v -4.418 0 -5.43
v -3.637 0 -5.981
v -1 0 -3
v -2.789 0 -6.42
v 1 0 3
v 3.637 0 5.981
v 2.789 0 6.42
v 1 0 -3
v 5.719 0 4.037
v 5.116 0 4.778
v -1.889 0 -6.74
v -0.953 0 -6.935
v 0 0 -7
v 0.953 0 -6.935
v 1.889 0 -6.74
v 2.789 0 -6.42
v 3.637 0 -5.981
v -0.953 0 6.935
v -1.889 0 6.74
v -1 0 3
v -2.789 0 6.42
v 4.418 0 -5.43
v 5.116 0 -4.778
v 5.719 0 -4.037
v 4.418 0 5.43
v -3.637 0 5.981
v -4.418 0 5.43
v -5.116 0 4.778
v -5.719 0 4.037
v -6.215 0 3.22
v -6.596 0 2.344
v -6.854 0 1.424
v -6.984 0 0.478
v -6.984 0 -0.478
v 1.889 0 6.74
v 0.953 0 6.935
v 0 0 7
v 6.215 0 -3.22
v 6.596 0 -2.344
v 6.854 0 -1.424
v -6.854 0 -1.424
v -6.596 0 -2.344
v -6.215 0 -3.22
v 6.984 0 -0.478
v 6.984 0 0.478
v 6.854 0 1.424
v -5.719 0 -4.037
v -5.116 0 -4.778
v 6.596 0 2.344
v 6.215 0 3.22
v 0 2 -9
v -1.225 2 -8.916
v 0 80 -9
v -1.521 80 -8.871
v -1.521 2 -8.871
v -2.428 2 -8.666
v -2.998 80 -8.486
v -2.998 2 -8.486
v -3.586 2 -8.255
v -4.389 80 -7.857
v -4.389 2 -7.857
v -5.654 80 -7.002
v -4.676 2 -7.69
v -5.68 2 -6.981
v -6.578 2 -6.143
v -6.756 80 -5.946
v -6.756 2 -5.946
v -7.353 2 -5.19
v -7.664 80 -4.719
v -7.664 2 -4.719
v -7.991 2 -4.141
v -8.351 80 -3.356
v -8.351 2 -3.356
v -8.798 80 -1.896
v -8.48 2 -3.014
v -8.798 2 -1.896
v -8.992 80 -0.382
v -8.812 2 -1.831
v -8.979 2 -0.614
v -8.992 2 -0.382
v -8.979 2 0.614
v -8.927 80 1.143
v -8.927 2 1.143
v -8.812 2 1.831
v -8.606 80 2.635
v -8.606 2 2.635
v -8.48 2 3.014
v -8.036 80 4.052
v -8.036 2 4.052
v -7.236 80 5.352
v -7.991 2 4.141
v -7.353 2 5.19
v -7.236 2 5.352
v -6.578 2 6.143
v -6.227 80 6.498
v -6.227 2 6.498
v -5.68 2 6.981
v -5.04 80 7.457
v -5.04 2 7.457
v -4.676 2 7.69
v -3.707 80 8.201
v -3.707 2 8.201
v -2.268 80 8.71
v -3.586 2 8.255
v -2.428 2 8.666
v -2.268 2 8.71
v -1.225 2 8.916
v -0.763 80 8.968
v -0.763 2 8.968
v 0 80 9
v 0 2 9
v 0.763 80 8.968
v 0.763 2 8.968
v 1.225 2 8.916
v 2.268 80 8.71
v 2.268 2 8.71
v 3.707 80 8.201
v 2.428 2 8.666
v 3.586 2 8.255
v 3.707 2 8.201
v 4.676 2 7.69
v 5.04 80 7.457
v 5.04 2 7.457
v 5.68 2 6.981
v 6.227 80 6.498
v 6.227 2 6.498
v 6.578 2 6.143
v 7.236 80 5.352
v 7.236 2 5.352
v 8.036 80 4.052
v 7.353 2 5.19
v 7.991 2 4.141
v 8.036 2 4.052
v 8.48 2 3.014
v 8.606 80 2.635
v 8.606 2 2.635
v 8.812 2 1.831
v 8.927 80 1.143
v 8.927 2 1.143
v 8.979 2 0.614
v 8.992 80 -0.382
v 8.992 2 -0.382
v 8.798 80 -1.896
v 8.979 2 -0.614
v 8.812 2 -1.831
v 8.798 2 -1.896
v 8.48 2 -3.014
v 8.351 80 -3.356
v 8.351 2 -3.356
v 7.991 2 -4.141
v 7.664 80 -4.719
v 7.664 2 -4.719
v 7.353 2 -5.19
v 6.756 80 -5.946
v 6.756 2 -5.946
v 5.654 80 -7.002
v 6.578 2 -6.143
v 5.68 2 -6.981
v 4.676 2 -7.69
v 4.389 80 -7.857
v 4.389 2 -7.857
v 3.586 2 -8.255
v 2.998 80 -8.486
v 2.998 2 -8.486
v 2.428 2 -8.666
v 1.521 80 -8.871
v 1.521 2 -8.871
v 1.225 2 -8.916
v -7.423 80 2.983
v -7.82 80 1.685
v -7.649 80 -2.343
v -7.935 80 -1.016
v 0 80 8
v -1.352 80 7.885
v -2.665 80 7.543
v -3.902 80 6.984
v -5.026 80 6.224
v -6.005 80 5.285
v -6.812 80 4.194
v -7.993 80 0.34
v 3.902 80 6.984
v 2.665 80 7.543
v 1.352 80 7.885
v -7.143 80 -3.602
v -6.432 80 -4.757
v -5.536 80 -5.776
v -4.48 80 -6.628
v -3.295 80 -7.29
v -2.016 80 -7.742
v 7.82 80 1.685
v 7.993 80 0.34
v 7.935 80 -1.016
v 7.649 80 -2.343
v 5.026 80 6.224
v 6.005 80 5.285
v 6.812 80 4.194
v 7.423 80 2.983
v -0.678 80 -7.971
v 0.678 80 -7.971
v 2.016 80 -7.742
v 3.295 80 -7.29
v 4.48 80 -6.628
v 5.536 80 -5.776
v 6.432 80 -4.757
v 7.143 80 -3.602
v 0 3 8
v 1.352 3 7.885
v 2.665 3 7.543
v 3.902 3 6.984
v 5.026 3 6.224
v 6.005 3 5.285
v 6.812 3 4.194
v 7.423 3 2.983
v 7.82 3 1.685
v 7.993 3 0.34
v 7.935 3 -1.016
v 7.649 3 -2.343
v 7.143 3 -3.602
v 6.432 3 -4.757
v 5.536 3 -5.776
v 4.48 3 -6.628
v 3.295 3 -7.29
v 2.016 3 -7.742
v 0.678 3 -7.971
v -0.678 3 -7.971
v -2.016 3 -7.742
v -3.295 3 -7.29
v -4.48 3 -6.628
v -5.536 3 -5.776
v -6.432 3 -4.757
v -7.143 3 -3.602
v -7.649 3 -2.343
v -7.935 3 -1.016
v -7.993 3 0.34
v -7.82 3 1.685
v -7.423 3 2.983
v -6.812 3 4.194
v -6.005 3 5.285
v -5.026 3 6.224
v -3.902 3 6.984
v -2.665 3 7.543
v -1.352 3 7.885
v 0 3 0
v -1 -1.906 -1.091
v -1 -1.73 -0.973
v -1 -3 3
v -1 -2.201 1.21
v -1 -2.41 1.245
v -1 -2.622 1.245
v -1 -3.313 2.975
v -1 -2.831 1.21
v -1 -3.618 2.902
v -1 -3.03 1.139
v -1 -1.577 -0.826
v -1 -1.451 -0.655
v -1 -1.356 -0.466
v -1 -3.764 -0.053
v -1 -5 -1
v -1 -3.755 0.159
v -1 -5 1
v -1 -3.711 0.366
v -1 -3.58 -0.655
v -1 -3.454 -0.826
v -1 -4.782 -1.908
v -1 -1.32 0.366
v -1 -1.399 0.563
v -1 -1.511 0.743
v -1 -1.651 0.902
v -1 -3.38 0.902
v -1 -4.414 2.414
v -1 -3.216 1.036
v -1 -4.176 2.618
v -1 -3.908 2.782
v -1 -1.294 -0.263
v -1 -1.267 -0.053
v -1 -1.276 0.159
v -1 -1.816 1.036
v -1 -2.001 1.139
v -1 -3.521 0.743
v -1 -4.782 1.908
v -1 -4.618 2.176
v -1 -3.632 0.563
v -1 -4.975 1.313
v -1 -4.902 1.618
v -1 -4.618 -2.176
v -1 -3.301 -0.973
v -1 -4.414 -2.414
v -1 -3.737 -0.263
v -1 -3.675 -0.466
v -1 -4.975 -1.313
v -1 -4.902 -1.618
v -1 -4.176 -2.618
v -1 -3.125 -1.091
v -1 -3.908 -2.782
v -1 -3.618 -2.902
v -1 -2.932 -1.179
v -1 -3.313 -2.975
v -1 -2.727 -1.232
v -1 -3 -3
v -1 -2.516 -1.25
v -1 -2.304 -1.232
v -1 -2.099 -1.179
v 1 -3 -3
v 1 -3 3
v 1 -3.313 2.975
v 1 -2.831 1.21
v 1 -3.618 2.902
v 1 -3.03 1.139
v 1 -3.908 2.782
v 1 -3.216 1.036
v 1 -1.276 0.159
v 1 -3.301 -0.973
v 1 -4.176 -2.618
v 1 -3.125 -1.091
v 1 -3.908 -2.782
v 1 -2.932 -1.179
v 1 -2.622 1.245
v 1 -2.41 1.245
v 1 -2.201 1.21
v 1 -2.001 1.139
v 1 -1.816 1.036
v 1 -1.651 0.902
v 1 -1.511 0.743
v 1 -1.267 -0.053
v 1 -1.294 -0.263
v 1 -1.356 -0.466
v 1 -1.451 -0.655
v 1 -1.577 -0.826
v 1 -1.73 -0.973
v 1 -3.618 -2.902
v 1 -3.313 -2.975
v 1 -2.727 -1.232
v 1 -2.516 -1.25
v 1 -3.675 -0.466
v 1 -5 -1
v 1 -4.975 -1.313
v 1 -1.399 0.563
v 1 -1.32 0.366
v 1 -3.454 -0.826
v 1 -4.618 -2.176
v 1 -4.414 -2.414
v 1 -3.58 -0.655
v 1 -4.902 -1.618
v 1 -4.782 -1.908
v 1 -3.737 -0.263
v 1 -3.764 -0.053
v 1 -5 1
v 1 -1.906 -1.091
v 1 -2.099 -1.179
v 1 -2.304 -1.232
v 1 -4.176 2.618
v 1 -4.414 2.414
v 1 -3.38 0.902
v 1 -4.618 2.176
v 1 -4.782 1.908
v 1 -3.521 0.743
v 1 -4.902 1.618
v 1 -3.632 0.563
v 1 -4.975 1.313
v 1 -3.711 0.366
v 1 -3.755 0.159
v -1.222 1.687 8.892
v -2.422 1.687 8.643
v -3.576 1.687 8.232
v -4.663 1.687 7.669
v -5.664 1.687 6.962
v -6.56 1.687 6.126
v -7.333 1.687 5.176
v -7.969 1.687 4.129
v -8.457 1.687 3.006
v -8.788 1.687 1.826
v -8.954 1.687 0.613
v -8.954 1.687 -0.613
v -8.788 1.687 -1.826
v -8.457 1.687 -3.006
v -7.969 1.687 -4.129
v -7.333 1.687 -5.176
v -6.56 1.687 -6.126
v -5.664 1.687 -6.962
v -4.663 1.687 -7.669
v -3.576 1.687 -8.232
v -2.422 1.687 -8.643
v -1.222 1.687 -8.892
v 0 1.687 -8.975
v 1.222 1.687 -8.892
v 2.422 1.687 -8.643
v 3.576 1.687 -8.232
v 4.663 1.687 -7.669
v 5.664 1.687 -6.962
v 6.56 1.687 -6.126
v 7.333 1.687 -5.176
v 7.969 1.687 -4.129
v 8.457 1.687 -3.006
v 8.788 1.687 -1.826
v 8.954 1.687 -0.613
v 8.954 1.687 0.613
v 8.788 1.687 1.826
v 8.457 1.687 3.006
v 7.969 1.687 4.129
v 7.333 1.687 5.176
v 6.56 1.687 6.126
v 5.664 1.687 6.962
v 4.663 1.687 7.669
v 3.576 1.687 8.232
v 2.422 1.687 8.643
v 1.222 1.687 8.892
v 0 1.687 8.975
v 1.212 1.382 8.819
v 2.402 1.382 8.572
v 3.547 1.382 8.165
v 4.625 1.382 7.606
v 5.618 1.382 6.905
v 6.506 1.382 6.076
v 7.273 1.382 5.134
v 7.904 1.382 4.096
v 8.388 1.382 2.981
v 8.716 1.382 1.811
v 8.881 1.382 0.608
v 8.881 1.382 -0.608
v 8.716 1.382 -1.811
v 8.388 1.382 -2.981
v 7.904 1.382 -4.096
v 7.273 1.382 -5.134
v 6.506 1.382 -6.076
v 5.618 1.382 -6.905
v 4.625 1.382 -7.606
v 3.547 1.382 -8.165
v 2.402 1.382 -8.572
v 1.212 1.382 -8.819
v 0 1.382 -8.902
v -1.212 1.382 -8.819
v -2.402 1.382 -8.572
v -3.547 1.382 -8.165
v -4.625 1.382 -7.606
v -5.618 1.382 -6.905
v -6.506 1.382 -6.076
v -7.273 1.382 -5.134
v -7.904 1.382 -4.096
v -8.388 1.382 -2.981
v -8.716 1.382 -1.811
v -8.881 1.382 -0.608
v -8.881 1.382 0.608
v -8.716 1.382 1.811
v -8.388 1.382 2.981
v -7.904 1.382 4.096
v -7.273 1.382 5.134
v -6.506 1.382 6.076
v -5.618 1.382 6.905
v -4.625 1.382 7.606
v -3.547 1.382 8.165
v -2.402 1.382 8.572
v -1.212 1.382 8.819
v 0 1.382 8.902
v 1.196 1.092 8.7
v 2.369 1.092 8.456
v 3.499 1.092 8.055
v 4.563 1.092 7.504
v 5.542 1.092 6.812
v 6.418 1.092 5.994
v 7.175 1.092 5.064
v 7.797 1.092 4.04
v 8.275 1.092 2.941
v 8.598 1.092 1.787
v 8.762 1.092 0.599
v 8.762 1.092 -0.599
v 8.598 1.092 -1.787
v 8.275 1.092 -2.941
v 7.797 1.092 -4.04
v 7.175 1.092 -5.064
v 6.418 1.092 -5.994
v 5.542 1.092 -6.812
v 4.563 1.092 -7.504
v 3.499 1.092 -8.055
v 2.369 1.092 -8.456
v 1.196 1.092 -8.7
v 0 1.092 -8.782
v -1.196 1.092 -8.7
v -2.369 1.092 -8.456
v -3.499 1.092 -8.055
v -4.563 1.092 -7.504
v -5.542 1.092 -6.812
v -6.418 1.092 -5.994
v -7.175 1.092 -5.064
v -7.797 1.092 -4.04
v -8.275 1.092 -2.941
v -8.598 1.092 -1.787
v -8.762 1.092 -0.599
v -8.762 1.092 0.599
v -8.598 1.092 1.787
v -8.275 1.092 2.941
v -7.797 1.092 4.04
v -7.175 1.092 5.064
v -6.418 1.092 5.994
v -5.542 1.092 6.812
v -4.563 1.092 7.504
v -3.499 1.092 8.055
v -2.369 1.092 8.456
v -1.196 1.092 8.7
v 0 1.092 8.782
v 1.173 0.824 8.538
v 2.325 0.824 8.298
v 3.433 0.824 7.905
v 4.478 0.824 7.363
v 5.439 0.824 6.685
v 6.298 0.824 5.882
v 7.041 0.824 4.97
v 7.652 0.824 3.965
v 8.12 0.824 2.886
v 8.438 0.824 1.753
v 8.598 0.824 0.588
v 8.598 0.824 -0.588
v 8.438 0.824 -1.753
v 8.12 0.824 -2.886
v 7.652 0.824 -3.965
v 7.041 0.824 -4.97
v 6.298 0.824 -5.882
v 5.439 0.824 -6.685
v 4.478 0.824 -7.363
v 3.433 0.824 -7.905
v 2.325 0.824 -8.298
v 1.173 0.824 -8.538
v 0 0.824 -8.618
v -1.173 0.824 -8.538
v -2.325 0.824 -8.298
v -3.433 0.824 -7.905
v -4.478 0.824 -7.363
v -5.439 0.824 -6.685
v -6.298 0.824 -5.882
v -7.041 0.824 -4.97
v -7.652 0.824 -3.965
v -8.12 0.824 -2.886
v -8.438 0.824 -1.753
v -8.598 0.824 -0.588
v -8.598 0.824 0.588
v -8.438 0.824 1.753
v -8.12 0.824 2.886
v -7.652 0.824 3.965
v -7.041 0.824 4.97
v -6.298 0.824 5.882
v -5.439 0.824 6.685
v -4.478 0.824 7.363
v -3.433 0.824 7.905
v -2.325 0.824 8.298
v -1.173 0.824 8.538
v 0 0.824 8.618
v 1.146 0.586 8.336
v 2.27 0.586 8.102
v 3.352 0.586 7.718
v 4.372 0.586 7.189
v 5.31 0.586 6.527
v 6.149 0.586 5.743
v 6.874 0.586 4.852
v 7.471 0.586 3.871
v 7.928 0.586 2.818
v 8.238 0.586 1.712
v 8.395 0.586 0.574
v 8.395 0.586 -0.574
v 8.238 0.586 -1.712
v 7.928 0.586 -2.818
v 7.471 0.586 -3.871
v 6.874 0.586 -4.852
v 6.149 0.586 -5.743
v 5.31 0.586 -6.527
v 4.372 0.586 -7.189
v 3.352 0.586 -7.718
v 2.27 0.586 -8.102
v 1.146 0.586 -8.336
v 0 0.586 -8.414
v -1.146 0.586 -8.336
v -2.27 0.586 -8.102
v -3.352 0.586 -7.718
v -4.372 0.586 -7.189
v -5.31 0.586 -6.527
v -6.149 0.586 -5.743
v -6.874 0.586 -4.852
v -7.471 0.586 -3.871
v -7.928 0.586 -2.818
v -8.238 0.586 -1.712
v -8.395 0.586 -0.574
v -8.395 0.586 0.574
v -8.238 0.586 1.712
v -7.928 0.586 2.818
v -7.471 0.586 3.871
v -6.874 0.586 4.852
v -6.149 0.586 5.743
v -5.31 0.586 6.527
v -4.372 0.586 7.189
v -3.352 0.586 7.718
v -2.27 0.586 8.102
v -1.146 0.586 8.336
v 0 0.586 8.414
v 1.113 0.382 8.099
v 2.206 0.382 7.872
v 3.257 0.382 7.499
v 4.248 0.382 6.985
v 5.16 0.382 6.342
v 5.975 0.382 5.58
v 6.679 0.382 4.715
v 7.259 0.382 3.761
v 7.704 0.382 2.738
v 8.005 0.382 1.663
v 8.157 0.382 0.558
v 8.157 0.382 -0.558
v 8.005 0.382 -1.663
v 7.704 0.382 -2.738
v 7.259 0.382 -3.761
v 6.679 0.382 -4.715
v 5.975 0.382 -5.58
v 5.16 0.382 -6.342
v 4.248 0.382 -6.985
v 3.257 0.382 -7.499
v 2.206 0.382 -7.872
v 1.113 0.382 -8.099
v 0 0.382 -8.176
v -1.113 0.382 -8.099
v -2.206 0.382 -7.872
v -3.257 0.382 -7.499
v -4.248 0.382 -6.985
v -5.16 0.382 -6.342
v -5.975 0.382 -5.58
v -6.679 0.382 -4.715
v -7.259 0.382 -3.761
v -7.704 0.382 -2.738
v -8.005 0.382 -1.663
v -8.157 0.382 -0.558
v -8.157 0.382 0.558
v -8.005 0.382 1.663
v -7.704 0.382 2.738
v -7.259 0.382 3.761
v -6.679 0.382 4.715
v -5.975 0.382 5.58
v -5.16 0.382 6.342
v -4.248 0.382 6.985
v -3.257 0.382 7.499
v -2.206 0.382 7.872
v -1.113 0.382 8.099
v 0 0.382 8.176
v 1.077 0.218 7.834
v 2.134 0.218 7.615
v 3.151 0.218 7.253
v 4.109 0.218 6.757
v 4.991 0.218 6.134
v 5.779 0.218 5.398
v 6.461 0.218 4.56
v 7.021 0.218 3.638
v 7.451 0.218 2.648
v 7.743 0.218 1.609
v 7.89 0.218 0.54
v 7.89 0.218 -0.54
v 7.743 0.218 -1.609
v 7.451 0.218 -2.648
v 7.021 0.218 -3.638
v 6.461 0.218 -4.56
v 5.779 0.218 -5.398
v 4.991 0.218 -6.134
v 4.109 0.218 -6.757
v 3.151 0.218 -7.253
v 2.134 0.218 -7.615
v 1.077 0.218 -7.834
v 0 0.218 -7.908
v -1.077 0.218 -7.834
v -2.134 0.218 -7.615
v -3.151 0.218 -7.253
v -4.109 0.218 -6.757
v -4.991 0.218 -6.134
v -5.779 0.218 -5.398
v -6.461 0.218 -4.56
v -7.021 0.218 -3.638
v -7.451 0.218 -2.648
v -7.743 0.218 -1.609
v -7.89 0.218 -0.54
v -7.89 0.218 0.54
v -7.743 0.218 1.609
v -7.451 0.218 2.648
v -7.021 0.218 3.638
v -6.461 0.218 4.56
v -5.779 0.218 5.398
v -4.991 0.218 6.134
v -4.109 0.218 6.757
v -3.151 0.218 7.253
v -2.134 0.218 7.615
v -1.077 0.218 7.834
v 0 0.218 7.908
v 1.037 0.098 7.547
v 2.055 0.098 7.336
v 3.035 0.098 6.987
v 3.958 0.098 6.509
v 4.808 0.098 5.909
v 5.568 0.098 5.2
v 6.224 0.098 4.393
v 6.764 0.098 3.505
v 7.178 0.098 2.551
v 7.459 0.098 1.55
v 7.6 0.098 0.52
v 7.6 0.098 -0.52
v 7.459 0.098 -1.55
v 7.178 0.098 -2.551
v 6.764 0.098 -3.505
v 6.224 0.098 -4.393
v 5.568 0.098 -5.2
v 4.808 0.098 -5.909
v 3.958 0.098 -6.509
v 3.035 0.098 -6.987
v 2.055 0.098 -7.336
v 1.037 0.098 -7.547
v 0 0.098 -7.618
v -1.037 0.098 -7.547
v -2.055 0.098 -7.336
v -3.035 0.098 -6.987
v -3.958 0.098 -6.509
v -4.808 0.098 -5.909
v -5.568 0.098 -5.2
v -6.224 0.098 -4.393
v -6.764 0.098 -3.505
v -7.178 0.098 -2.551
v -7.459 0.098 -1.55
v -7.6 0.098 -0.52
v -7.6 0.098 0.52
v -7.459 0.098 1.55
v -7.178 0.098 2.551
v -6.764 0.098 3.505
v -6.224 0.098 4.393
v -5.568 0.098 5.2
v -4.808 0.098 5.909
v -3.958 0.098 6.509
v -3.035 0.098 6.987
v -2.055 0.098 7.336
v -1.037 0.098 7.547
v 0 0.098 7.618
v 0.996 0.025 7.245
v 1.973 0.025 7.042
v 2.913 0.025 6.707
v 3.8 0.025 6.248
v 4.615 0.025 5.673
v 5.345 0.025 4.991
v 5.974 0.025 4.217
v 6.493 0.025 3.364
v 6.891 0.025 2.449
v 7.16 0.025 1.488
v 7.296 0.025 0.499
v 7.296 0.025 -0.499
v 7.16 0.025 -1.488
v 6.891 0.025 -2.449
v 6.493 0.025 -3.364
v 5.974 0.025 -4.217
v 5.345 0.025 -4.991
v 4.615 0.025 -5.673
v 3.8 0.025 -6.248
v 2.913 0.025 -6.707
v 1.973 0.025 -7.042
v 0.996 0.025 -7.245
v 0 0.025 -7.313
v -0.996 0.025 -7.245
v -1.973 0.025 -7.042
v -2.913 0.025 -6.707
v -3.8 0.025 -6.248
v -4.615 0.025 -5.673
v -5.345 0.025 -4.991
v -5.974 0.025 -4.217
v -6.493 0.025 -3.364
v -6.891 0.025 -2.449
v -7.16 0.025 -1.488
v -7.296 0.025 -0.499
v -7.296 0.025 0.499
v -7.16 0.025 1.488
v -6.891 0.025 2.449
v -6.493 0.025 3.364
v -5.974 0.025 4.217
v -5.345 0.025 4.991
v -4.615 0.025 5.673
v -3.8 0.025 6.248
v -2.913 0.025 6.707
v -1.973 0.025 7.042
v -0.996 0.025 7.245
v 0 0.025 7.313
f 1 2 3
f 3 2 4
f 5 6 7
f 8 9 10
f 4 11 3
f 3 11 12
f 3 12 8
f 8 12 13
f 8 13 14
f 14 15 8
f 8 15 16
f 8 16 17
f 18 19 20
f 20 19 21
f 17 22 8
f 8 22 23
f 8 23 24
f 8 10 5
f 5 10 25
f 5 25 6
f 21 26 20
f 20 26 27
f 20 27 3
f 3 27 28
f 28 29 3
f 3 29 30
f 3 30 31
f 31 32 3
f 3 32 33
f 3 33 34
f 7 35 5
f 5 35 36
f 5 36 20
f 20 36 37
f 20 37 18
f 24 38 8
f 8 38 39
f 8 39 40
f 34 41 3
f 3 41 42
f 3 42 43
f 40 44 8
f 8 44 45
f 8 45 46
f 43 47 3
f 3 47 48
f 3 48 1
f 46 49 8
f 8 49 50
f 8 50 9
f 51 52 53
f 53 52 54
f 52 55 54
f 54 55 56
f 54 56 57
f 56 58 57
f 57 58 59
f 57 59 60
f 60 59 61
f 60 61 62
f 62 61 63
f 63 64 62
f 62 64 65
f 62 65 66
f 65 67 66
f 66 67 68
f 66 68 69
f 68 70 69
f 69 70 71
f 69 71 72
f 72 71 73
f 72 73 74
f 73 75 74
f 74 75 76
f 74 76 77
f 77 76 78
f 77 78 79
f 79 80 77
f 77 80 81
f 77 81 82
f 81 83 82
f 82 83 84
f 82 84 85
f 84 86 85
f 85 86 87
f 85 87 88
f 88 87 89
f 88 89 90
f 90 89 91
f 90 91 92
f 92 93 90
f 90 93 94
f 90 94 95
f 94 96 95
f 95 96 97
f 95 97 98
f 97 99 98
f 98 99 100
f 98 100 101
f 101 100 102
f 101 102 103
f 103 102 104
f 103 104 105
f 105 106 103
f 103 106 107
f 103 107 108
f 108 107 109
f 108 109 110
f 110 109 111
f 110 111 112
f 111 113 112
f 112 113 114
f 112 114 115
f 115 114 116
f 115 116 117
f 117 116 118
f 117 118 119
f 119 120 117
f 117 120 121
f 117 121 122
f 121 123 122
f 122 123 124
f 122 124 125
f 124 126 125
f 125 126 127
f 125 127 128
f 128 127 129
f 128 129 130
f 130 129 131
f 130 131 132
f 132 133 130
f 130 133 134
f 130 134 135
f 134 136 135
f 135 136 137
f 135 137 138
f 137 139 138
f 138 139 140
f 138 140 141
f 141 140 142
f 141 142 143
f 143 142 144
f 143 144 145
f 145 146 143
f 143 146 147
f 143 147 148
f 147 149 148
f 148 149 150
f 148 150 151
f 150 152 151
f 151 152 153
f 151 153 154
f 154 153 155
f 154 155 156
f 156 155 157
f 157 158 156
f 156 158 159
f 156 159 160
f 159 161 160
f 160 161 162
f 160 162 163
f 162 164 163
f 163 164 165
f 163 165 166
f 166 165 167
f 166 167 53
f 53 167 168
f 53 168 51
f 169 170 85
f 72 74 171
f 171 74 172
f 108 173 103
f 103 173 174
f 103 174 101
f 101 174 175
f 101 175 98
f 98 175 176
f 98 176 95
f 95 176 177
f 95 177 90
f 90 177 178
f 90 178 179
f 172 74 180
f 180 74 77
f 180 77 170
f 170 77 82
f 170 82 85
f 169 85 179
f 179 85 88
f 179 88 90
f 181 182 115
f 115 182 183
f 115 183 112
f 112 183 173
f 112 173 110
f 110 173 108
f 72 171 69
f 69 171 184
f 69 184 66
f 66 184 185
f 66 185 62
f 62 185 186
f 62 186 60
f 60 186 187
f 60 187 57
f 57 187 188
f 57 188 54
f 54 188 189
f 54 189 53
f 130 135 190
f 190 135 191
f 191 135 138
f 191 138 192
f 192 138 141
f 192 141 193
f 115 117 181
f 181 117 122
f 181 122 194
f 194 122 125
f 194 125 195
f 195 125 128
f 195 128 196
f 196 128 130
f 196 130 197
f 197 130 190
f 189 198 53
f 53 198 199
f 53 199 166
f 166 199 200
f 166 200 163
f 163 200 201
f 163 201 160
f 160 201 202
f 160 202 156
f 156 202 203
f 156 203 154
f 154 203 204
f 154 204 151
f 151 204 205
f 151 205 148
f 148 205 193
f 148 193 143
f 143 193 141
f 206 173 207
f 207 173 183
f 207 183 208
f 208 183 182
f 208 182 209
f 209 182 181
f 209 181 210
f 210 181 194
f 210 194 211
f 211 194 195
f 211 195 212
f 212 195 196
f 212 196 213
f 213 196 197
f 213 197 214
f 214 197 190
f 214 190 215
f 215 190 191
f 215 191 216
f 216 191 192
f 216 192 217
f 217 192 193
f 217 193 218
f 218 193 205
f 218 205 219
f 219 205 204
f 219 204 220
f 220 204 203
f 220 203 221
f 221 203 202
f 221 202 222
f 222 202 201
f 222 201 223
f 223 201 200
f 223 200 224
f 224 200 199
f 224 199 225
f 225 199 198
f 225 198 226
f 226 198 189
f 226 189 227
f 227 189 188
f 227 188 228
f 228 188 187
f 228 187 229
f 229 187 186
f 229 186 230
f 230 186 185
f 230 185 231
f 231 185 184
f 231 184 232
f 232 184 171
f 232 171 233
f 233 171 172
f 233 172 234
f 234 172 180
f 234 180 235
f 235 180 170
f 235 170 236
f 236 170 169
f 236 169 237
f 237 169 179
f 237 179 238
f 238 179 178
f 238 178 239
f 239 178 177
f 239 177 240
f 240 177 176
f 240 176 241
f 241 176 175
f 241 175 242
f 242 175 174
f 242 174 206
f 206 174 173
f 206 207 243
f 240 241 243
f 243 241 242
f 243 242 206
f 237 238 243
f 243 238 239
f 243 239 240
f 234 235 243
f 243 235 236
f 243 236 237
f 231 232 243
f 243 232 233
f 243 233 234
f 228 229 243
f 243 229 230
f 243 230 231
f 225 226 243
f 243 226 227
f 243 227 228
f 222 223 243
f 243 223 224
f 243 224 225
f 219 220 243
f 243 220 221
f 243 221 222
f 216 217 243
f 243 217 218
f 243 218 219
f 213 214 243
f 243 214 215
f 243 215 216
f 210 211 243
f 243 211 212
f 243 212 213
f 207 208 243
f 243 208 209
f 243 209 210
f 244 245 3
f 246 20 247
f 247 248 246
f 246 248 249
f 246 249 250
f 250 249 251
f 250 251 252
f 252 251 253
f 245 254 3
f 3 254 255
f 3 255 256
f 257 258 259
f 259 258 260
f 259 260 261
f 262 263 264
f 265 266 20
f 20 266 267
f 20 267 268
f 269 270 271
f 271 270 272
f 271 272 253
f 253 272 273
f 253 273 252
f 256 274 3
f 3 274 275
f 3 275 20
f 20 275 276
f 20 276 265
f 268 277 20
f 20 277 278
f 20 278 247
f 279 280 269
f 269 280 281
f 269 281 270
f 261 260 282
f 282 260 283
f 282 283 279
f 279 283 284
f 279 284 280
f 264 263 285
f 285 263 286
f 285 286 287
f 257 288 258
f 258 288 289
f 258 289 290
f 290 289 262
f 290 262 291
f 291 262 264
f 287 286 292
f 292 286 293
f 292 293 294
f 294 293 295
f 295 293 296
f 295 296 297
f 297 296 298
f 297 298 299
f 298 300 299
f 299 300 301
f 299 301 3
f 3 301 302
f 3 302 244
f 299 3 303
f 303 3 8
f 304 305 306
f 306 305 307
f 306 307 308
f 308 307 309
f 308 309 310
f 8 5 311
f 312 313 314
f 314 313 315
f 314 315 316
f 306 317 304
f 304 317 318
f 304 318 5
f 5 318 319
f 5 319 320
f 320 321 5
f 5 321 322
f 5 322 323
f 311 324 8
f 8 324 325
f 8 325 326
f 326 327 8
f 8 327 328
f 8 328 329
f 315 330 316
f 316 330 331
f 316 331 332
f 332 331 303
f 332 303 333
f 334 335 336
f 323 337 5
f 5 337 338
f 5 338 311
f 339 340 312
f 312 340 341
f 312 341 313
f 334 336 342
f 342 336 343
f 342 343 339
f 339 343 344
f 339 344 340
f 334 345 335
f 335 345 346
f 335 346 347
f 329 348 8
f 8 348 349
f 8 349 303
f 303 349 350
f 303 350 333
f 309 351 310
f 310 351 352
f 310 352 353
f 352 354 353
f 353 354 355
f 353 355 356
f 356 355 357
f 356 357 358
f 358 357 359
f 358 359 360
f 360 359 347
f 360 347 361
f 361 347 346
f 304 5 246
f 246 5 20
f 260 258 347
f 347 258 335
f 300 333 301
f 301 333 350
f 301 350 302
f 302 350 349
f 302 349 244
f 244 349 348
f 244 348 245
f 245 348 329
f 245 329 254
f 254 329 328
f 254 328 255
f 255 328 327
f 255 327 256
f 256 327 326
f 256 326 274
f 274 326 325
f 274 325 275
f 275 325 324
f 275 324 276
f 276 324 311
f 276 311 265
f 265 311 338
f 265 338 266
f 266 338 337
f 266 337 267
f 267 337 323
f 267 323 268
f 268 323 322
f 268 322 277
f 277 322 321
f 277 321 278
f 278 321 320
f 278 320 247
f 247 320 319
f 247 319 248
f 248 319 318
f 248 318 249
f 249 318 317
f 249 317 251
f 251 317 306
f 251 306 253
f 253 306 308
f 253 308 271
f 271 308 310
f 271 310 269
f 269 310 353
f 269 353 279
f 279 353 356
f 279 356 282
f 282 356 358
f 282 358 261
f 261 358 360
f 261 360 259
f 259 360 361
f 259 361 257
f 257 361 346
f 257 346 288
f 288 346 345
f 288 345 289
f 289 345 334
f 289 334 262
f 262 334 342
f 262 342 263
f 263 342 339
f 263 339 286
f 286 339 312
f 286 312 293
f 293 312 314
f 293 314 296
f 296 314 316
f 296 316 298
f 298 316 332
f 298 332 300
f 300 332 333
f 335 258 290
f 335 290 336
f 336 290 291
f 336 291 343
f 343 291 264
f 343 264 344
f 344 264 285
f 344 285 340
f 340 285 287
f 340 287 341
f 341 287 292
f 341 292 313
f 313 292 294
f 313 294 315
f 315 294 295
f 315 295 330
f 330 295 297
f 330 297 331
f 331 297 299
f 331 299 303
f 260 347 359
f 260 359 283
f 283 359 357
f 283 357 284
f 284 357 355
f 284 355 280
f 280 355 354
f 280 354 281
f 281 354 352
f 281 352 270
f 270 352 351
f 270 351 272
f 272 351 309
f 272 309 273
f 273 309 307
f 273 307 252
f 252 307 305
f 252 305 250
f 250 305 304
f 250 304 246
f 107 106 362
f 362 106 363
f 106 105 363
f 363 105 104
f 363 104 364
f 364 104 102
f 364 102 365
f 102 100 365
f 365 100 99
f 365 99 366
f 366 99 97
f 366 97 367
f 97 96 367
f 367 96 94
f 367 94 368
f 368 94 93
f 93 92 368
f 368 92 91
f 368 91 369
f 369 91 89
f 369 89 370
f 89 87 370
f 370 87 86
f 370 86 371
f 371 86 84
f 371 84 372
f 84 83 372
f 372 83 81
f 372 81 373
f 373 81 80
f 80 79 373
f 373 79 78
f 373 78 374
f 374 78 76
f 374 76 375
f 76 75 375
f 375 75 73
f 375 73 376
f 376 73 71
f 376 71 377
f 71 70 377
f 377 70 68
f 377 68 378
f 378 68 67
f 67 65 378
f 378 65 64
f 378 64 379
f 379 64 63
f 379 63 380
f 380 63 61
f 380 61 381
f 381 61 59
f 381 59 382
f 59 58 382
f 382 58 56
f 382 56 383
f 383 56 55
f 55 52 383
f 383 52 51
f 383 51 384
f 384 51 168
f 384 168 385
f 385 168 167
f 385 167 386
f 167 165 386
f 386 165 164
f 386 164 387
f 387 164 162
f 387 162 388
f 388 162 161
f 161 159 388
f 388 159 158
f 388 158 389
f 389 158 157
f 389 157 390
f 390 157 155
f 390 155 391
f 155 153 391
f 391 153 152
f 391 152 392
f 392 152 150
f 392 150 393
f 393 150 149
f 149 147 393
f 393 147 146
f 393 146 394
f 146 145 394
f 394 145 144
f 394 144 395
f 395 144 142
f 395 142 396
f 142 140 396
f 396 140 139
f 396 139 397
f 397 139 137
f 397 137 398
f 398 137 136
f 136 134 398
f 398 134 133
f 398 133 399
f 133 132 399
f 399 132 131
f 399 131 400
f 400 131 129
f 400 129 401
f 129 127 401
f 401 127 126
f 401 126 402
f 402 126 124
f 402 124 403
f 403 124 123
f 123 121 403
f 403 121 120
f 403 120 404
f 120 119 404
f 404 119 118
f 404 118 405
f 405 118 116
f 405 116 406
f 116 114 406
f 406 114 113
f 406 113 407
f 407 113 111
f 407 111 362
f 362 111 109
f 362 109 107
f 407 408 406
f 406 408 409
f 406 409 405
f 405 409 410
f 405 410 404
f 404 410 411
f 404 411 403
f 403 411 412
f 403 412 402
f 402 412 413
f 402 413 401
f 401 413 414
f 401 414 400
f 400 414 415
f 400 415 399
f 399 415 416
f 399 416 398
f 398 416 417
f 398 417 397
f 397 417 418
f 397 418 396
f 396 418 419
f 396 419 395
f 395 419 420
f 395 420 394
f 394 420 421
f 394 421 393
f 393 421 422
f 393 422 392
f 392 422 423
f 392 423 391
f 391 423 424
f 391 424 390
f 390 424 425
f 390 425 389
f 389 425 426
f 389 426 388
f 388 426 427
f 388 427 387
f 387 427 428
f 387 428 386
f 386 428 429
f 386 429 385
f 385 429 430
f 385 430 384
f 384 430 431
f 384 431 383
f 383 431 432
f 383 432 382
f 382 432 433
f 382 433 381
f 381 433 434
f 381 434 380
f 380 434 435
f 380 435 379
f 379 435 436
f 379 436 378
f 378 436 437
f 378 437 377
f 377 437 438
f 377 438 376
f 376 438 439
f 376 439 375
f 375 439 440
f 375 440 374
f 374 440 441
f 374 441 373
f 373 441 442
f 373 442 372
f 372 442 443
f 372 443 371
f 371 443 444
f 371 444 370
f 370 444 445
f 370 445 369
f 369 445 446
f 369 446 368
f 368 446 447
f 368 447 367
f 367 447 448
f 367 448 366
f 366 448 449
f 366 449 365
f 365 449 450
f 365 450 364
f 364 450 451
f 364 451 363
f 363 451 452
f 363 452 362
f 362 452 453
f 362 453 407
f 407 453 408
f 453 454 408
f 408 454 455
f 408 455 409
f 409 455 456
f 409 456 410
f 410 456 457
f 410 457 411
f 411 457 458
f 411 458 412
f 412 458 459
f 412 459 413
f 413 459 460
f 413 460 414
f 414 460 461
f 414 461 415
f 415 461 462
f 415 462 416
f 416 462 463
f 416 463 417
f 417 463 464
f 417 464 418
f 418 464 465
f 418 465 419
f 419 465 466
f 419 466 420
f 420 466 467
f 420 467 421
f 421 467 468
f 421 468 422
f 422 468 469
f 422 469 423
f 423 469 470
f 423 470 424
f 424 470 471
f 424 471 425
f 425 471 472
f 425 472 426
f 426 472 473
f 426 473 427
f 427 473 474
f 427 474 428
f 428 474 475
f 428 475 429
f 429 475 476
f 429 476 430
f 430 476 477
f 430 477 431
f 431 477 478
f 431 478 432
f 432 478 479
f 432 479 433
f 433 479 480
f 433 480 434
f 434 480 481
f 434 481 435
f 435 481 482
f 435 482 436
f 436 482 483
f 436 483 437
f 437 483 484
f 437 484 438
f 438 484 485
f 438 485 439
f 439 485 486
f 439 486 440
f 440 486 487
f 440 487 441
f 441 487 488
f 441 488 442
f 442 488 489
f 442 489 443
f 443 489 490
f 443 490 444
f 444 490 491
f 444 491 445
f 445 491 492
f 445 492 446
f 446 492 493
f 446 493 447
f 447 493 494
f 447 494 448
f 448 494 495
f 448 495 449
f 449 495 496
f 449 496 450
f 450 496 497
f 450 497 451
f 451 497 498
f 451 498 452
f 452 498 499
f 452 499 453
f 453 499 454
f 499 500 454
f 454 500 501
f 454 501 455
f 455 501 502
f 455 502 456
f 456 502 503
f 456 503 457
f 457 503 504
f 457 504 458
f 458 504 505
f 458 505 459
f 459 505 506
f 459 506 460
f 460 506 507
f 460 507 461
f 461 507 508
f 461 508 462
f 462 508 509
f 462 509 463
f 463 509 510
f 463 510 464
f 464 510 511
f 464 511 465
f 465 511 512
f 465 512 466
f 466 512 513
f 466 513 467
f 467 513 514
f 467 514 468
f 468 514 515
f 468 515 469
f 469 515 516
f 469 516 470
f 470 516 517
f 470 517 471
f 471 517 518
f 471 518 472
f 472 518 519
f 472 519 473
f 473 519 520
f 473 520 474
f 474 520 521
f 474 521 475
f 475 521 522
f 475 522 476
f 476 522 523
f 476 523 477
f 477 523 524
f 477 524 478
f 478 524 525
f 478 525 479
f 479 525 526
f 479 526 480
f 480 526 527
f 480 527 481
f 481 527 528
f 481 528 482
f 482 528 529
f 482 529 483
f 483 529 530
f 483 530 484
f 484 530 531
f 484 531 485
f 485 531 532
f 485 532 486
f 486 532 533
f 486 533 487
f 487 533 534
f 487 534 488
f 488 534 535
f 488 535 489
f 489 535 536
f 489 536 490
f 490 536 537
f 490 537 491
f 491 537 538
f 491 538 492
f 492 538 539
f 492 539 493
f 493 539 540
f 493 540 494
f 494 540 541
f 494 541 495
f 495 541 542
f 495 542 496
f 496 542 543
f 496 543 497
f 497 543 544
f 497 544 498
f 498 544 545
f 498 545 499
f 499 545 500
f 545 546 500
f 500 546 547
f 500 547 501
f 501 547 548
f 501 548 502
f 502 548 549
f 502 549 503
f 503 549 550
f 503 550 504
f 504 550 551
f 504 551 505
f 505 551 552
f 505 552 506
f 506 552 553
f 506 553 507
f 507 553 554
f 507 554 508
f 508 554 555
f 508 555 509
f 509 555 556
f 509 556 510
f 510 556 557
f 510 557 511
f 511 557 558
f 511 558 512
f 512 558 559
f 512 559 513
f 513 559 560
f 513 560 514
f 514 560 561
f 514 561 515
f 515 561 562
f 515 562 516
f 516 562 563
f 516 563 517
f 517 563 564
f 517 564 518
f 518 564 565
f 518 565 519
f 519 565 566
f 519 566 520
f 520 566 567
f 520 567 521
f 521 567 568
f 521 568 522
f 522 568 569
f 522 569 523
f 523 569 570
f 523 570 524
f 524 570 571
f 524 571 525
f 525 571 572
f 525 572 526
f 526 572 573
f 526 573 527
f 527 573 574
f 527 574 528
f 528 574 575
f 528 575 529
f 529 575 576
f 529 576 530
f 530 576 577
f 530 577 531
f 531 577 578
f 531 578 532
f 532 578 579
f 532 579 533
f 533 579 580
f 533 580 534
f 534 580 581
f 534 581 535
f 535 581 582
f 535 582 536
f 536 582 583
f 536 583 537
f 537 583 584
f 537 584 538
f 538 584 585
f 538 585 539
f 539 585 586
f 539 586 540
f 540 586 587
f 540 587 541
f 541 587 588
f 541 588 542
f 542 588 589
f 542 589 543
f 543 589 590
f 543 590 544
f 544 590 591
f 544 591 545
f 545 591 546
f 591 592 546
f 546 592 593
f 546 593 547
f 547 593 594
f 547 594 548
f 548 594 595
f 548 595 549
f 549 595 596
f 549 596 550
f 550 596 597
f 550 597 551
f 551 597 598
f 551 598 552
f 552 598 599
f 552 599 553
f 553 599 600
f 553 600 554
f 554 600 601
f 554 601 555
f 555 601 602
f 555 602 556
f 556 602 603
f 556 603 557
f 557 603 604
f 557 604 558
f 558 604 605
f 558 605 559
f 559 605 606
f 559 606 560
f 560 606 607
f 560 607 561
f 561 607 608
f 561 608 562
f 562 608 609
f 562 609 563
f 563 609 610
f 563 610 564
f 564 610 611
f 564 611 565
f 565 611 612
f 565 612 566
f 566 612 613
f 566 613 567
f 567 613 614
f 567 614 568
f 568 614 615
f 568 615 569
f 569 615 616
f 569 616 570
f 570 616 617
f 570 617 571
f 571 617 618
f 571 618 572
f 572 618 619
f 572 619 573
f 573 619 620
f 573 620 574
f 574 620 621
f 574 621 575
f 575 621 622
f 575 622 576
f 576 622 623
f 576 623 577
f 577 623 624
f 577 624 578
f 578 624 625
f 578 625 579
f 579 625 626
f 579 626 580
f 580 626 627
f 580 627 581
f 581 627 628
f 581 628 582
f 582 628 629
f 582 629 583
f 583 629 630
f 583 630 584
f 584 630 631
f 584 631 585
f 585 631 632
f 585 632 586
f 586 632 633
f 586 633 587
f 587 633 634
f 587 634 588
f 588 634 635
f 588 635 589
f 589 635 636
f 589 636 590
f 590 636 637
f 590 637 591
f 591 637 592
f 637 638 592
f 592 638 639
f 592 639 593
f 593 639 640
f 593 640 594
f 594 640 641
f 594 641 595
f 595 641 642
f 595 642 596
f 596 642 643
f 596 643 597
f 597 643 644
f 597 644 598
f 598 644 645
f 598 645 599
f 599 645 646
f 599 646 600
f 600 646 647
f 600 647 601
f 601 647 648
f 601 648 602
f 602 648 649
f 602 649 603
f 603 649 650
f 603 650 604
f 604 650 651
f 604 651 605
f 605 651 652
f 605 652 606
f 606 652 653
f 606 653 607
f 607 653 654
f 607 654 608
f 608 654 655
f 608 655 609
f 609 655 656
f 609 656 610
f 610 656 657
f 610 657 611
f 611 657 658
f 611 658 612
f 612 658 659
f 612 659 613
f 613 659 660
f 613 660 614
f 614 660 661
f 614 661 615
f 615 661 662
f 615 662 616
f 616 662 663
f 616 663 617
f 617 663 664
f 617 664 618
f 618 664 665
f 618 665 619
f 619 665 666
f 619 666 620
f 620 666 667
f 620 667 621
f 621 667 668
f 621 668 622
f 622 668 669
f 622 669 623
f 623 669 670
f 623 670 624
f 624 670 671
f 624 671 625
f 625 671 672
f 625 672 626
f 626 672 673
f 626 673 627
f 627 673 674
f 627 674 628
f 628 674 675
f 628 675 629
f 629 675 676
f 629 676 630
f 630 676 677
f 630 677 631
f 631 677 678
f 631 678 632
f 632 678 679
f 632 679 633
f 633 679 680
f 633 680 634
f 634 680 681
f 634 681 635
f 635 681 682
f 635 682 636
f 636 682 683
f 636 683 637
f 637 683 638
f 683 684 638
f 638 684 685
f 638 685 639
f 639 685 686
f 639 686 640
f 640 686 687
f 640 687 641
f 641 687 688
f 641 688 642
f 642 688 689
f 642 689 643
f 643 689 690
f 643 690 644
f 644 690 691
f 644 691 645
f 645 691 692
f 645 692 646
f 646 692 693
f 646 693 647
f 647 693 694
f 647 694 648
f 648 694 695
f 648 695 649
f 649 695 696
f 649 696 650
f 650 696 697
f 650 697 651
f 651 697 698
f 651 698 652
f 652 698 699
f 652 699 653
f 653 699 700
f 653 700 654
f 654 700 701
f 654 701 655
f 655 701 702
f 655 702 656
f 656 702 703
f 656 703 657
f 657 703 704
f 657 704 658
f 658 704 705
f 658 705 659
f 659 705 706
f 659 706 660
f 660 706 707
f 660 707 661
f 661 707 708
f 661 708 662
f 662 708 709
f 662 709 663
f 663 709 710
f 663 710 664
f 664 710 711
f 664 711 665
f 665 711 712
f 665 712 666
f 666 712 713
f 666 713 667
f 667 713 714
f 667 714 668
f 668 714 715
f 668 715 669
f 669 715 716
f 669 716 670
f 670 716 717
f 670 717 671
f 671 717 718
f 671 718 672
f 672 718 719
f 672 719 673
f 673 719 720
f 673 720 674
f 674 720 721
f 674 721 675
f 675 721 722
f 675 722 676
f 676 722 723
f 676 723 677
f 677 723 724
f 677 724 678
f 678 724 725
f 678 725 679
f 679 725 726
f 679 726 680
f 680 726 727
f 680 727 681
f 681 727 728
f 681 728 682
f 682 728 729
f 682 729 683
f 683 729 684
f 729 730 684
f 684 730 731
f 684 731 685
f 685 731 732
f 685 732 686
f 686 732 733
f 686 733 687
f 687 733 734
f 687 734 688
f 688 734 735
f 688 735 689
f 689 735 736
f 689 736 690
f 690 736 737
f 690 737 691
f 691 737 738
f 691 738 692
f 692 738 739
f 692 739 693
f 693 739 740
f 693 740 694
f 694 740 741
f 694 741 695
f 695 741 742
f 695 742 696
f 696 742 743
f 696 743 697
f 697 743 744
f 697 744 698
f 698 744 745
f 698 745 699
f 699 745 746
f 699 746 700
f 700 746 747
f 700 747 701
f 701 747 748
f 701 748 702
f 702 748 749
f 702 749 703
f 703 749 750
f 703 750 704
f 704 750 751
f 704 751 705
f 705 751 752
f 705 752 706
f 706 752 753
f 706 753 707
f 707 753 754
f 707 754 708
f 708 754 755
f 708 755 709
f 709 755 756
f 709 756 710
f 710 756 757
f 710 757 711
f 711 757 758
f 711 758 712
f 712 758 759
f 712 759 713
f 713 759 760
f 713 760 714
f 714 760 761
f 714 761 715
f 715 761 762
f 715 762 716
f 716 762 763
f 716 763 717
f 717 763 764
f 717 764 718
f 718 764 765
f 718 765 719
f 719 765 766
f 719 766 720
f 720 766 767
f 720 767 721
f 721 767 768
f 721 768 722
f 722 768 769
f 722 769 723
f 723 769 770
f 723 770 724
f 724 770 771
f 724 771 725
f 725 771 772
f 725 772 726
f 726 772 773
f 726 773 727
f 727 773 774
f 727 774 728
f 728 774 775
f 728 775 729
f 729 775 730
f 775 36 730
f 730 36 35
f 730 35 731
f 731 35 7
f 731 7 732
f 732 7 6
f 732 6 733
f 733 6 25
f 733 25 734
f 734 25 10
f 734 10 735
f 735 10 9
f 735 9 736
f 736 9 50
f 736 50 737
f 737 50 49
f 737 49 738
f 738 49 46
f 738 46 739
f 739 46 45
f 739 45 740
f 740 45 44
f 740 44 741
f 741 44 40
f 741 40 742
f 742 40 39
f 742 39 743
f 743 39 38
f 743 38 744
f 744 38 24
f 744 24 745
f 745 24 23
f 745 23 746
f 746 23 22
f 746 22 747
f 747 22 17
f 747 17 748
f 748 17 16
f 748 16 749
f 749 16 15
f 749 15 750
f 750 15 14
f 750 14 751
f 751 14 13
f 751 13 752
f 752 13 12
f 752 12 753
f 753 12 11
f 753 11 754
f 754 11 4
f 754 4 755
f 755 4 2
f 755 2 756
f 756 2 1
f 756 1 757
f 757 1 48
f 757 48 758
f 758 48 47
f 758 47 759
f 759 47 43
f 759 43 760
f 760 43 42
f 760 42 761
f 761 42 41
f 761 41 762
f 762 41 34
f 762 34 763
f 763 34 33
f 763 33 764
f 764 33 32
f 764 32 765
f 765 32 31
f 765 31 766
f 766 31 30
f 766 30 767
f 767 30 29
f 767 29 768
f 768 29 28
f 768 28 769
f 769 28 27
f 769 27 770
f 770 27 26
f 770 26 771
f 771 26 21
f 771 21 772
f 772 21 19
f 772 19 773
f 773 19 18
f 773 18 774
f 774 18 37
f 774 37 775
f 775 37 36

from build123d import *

# Parameters (mm, degrees)
SKETCH_1_R          = 9
EXTRUDE_1_DEPTH     = 80
SKETCH_2_R          = 8
CUT_EXTRUDE_1_DEPTH = 77
SKETCH_3_W          = 2
SKETCH_3_H          = 6
EXTRUDE_2_DEPTH     = 5
SKETCH_4_R          = 1.25
CUT_EXTRUDE_2_DEPTH = 5
FILLET_1_R          = 2
FILLET_2_R          = 2
FILLET_3_R          = 2


with BuildPart() as part:
    # 草图1 → 凸台-拉伸1 (new body)
    with BuildSketch(Plane(origin=(0, 0, 0), x_dir=(1, 0, 0), z_dir=(0, 1, 0))):
        with Locations(Location((0, 0, 0), (0, 0, 270))):
            Circle(SKETCH_1_R)
    extrude(amount=EXTRUDE_1_DEPTH)

    # 草图2 → 切除-拉伸1 (cut)
    with BuildSketch(Plane(origin=(0, 80, 0), x_dir=(1, 0, 0), z_dir=(0, 1, 0))):
        with Locations(Location((0, 0, 0), (0, 0, 270))):
            Circle(SKETCH_2_R)
    extrude(amount=-CUT_EXTRUDE_1_DEPTH, mode=Mode.SUBTRACT)

    # 草图3 → 凸台-拉伸2 (add)
    with BuildSketch(Plane(origin=(0, 0, 0), x_dir=(-1, 0, 0), z_dir=(0, -1, 0))):
        Rectangle(SKETCH_3_W, SKETCH_3_H)
    extrude(amount=EXTRUDE_2_DEPTH)

    # 草图4 → 切除-拉伸2 (cut)
    with BuildSketch(Plane(origin=(1, 0, 0), x_dir=(0, 0, -1), z_dir=(1, 0, 0))):
        with Locations((0, -2.515551663)):
            Circle(SKETCH_4_R)
    extrude(amount=-CUT_EXTRUDE_2_DEPTH, mode=Mode.SUBTRACT)

    # 圆角1
    fillet_1_edges = [part.edges().sort_by_distance(p)[0] for p in [
        (0, -5, -3),
    ]]
    fillet(fillet_1_edges, radius=FILLET_1_R)

    # 圆角2
    fillet_2_edges = [part.edges().sort_by_distance(p)[0] for p in [
        (0, -5, 3),
    ]]
    fillet(fillet_2_edges, radius=FILLET_2_R)

    # 圆角3
    fillet_3_edges = [part.edges().sort_by_distance(p)[0] for p in [
        (0, 0, -9),
    ]]
    fillet(fillet_3_edges, radius=FILLET_3_R)


solid = part.part
